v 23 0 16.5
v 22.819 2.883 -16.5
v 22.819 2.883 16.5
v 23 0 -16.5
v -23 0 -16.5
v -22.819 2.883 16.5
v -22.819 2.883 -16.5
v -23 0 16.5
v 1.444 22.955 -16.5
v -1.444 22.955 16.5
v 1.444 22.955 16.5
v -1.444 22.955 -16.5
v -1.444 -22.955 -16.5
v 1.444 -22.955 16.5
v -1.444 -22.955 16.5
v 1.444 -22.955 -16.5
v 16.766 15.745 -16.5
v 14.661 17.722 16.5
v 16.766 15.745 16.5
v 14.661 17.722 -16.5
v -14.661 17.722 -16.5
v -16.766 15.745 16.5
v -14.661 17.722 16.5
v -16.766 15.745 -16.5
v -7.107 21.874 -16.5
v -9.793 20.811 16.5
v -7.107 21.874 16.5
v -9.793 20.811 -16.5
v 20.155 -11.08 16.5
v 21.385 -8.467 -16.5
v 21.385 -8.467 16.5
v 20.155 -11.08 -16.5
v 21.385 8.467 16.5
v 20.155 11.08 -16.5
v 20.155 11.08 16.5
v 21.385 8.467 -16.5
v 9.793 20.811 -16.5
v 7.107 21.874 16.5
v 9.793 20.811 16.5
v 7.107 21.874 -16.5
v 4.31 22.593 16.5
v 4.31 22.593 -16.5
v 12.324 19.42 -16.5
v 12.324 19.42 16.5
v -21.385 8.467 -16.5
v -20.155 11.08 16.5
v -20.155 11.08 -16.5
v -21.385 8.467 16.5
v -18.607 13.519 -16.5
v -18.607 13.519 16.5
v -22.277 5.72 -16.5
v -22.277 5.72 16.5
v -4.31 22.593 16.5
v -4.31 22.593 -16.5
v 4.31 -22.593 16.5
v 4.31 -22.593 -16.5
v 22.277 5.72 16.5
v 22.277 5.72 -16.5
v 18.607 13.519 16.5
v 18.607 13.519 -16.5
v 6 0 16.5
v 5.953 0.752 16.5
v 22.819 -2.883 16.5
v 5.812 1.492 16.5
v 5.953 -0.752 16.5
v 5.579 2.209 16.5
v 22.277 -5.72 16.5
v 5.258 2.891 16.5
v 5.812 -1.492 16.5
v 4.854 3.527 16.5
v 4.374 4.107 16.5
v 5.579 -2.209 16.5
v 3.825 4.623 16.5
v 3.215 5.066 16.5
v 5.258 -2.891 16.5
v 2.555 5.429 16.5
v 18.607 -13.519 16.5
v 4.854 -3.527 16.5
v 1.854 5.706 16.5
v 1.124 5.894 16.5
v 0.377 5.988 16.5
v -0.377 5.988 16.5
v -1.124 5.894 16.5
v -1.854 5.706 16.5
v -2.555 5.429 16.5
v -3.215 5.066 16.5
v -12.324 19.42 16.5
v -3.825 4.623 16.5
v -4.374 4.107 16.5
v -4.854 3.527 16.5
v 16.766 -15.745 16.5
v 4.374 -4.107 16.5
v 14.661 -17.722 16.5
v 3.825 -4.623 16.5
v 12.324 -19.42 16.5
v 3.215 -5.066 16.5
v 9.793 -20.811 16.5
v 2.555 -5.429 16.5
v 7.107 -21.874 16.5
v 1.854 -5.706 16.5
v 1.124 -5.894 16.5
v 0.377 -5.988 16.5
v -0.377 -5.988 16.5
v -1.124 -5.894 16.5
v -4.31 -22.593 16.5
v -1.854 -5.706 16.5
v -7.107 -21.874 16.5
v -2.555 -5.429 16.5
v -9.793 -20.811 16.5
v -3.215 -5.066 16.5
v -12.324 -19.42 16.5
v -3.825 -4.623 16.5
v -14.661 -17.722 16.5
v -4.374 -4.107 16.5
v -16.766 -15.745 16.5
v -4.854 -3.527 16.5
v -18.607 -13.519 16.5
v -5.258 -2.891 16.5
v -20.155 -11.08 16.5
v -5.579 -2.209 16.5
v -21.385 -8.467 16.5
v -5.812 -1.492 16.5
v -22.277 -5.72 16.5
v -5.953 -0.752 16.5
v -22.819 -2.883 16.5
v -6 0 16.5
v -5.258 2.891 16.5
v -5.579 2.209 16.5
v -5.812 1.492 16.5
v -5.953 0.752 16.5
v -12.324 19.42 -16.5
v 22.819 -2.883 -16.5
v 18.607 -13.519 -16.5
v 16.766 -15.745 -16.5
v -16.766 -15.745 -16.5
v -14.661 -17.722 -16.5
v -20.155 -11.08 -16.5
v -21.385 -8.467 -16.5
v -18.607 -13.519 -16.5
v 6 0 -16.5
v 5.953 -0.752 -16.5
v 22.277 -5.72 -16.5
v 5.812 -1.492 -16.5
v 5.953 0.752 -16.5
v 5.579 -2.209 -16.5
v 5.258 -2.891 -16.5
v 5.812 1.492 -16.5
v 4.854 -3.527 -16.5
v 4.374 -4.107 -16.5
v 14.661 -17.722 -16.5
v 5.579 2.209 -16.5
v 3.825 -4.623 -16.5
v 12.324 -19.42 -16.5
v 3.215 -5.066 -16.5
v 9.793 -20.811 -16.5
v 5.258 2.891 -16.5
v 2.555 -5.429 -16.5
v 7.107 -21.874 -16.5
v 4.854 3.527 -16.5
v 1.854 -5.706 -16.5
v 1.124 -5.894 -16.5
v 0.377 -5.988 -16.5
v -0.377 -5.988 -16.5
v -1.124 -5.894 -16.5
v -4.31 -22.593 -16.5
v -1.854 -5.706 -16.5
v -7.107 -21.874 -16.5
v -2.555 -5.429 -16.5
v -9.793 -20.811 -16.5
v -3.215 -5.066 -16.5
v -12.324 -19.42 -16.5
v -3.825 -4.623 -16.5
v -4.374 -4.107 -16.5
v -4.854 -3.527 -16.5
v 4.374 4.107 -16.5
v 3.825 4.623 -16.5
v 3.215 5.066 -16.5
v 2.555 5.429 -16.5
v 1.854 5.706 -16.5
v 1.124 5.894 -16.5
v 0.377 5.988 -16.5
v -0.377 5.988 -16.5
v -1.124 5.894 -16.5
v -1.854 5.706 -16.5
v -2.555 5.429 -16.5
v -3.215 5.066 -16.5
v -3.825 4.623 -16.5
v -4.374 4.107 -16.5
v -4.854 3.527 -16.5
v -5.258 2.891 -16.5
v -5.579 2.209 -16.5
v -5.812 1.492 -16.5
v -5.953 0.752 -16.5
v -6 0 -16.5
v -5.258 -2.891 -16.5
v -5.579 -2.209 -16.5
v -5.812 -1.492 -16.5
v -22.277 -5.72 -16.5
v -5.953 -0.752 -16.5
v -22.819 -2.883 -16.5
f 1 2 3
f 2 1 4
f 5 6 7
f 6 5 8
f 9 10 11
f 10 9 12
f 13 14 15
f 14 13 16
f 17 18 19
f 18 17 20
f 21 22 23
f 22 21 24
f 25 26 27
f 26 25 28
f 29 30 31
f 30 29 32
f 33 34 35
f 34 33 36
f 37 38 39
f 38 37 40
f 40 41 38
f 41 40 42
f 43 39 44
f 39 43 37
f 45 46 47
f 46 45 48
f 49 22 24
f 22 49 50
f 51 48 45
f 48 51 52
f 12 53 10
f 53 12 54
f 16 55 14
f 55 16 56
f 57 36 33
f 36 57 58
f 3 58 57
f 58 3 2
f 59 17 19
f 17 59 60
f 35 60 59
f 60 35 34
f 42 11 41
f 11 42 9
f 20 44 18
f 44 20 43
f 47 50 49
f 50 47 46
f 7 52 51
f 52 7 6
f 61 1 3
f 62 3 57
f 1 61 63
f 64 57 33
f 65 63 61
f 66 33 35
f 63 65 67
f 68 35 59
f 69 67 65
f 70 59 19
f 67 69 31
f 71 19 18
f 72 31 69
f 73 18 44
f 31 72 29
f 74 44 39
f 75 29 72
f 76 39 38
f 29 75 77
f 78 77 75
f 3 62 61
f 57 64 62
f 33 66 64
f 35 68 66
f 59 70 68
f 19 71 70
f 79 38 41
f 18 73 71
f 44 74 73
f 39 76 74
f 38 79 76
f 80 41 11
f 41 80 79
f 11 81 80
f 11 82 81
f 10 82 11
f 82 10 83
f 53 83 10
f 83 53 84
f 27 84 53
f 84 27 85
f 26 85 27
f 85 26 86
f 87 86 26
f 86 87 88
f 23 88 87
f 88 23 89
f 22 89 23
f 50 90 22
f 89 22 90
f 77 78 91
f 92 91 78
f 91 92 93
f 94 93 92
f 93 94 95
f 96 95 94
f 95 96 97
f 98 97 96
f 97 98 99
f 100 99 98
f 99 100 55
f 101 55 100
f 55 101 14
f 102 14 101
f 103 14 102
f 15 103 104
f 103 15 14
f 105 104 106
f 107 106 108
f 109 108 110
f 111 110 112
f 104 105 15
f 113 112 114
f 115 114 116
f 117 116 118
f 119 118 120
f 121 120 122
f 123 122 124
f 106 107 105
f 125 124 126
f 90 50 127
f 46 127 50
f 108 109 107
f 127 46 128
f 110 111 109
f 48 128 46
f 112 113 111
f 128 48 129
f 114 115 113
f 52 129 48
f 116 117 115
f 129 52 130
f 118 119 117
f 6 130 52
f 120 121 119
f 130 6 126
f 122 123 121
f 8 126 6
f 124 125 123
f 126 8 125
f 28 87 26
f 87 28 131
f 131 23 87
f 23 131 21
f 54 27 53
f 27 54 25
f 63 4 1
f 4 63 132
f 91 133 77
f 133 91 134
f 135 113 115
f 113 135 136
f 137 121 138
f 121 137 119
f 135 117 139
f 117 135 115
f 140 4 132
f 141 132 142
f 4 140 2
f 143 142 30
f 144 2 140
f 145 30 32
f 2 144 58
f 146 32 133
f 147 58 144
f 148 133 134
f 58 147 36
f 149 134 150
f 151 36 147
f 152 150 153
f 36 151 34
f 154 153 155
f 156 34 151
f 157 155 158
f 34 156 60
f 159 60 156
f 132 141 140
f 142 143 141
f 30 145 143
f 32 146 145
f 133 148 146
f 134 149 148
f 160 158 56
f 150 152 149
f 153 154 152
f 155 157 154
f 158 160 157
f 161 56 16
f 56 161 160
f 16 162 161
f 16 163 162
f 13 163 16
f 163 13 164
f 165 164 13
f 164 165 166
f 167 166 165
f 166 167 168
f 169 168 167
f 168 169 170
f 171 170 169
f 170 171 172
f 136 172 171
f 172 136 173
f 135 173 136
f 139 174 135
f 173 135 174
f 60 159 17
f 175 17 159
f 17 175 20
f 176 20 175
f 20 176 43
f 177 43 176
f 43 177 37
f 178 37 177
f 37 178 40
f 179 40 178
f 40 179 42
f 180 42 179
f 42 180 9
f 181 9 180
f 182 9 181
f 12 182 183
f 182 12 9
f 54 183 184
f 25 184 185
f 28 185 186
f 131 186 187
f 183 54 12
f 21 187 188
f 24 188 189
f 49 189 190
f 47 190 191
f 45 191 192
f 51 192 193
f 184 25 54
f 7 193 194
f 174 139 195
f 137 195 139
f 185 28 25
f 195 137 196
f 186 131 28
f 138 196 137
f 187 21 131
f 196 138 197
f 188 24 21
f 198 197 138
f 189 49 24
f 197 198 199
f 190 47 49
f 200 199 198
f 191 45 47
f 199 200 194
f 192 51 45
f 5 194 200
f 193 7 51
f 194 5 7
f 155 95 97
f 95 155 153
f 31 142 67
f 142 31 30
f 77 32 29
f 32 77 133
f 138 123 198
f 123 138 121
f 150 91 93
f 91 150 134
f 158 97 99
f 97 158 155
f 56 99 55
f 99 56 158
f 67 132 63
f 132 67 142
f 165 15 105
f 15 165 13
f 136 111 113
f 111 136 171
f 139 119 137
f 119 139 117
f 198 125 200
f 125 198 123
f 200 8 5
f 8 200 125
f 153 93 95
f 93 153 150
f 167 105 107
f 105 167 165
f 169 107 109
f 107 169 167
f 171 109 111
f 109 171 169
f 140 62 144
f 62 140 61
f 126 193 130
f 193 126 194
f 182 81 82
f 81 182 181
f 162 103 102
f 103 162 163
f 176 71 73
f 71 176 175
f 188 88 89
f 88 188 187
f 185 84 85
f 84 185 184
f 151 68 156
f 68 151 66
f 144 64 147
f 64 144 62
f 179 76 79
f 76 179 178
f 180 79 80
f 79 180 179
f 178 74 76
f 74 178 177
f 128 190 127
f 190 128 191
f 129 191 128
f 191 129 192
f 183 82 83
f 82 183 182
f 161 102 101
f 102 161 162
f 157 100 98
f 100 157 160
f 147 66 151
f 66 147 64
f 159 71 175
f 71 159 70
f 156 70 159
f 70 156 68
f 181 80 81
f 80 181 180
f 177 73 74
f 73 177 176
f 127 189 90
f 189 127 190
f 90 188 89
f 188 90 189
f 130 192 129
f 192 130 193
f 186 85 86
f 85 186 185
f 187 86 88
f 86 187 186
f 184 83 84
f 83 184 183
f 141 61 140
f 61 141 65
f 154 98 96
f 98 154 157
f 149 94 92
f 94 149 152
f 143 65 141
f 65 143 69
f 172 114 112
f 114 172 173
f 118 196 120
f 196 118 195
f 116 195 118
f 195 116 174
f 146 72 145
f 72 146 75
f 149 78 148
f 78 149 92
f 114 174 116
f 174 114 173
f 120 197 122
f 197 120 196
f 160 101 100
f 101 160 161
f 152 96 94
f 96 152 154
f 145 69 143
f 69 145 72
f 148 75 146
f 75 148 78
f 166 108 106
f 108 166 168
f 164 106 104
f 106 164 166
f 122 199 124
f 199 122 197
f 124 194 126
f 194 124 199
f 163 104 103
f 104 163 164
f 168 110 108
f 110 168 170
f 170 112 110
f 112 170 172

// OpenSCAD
$fn = 50;


difference() {
	union() {
		translate(v = [0, 0, -16.5000000000]) {
			cylinder(h = 33, r = 23.0000000000);
		}
	}
	union() {
		translate(v = [0, 0, -100.0000000000]) {
			cylinder(h = 200, r = 6);
		}
	}
}
